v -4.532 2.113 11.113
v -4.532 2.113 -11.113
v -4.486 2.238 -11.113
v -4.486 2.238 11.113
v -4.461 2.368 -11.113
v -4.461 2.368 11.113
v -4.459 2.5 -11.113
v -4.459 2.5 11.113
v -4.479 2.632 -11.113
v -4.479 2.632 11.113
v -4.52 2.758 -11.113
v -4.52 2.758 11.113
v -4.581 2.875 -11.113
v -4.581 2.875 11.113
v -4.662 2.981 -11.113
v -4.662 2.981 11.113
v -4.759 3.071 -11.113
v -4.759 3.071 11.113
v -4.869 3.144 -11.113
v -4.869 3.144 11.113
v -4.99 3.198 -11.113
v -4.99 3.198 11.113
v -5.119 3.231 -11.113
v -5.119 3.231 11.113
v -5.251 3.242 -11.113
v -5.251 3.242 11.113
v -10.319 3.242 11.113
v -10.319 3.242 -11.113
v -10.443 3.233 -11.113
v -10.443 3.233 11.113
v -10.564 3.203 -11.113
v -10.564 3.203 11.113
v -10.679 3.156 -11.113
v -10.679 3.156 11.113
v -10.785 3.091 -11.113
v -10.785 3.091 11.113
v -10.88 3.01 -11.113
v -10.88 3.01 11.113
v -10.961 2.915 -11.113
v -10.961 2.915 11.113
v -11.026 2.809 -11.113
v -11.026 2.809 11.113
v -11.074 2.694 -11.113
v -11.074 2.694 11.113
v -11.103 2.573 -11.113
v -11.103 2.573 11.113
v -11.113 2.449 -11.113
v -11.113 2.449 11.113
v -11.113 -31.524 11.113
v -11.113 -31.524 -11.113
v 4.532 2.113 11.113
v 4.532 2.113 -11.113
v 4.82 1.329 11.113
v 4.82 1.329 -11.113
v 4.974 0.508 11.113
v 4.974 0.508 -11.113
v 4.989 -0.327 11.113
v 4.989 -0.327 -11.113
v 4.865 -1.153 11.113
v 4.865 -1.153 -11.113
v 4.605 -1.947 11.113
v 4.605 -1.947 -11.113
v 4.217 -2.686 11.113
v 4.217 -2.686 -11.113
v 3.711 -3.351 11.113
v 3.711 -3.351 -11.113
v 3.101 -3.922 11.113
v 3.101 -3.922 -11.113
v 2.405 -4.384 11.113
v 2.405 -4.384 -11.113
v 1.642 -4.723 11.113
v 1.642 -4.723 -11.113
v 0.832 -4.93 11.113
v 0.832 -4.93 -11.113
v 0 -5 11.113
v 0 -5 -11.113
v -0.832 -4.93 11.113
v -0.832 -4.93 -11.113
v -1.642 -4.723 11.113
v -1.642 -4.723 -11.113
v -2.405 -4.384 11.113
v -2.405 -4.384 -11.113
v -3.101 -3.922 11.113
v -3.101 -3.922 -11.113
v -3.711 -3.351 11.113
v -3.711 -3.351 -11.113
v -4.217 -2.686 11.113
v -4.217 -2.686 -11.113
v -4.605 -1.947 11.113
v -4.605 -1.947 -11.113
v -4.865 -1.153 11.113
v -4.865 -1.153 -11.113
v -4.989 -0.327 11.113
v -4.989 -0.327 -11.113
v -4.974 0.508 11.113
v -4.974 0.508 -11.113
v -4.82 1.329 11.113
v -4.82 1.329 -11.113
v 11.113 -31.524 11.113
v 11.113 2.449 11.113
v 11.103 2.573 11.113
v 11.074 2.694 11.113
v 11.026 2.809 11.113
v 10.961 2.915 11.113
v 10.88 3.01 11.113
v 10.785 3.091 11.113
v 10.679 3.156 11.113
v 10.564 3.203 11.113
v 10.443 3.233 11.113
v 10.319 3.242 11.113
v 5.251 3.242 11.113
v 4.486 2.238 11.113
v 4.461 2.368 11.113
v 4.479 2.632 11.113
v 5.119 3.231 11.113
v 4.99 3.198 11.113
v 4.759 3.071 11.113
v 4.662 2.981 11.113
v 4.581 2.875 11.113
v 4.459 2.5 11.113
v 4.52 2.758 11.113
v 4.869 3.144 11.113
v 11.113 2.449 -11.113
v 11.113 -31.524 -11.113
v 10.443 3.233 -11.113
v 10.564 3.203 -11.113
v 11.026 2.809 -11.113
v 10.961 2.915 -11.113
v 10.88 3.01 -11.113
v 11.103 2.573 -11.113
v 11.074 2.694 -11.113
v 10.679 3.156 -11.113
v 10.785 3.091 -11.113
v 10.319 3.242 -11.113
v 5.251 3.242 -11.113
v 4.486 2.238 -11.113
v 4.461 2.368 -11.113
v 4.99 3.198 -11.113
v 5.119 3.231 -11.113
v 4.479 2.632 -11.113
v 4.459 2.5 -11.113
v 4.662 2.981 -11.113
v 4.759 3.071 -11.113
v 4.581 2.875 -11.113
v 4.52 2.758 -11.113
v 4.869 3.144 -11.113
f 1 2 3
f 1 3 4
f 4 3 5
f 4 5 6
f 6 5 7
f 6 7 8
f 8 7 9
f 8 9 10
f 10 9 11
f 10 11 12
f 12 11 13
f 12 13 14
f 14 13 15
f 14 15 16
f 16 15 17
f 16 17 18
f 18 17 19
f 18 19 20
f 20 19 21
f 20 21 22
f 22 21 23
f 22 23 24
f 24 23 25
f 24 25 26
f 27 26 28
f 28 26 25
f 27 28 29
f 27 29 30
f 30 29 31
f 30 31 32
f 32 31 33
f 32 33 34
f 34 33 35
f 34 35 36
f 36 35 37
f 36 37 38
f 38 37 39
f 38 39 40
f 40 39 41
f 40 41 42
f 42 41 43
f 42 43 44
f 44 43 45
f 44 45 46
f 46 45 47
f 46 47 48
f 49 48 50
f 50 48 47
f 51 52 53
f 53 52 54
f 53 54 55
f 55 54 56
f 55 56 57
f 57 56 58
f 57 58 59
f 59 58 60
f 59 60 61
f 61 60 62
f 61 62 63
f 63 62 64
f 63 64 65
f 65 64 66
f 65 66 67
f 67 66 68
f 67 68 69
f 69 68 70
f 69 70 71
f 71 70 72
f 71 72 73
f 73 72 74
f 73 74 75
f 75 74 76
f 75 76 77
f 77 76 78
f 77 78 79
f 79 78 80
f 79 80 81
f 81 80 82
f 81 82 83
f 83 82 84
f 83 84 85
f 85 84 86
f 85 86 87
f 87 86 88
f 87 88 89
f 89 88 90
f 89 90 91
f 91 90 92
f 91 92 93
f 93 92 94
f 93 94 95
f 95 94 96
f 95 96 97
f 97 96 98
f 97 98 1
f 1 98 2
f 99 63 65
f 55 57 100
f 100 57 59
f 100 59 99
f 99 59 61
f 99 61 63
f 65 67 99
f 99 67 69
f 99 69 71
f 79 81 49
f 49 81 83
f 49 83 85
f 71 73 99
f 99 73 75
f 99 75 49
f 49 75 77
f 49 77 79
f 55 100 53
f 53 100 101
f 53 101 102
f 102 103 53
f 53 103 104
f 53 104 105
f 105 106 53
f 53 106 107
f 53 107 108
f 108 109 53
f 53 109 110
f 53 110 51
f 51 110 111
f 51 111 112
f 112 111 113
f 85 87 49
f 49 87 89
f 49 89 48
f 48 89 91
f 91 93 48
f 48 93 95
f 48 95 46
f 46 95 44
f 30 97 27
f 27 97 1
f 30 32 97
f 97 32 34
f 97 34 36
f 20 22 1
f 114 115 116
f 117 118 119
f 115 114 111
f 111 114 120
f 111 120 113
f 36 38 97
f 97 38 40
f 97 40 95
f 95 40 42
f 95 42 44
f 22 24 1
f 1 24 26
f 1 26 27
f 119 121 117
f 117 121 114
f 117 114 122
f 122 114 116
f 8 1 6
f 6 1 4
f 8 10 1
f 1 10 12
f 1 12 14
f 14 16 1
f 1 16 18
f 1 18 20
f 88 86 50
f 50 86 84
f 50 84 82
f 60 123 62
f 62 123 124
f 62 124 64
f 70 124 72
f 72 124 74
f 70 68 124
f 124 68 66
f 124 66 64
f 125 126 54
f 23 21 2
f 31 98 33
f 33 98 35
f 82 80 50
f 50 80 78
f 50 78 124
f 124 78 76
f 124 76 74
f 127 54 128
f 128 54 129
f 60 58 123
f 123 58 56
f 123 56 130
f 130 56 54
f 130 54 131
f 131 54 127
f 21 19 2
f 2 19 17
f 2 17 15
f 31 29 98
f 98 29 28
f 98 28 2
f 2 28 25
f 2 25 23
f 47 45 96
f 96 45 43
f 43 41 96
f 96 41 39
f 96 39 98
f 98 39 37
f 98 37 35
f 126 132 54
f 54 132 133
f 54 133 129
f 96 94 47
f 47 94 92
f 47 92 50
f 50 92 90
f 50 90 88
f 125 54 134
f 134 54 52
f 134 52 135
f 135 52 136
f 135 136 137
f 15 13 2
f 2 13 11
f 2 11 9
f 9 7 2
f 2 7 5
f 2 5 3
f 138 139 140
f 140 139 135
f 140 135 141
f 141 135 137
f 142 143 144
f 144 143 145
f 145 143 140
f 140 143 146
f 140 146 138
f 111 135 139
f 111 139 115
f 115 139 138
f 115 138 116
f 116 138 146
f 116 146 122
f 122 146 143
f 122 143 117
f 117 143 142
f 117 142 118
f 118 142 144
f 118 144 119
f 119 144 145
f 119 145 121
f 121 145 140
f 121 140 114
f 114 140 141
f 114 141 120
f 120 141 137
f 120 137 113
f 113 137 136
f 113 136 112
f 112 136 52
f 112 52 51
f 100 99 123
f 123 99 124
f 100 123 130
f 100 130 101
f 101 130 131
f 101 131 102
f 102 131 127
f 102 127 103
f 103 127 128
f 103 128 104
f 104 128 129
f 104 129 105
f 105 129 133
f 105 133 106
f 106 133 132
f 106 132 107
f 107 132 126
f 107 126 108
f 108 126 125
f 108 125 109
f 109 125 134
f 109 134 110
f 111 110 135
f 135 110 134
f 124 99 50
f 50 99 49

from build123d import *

# Parameters (mm, degrees)
BOSS_EXTRUDE1_DEPTH = 11.1125
SKETCH2_W           = 22.225
SKETCH2_H           = 22.225
BOSS_EXTRUDE2_DEPTH = 1.524


with BuildPart() as part:
    # Sketch1 → Boss-Extrude1 (new body, symmetric)
    with BuildSketch(Plane.XY):
        with BuildLine():
            Line((-11.1125, 2.448544554), (-11.1125, -30))
            Line((-11.1125, -30), (0, -30))
            Line((0, -30), (0, -5))
            ThreePointArc((0, -5), (-4.216957229, -2.686498042), (-4.531538935, 2.113091309))
            ThreePointArc((-4.531538935, 2.113091309), (-4.581478781, 2.875026118), (-5.250920741, 3.242294554))
            Line((-5.250920741, 3.242294554), (-10.31875, 3.242294554))
            ThreePointArc((-10.31875, 3.242294554), (-10.880016008, 3.009810562), (-11.1125, 2.448544554))
        make_face()
    boss_extrude1 = extrude(amount=BOSS_EXTRUDE1_DEPTH, both=True)

    # Mirror1: Boss-Extrude1 across plane
    add(boss_extrude1.mirror(Plane(origin=(0, 0, 0), x_dir=(0, 0, 1), z_dir=(1, 0, 0))))

    # Sketch2 → Boss-Extrude2 (add)
    with BuildSketch(Plane.XZ.offset(30)):
        Rectangle(SKETCH2_W, SKETCH2_H)
    extrude(amount=BOSS_EXTRUDE2_DEPTH)


solid = part.part
